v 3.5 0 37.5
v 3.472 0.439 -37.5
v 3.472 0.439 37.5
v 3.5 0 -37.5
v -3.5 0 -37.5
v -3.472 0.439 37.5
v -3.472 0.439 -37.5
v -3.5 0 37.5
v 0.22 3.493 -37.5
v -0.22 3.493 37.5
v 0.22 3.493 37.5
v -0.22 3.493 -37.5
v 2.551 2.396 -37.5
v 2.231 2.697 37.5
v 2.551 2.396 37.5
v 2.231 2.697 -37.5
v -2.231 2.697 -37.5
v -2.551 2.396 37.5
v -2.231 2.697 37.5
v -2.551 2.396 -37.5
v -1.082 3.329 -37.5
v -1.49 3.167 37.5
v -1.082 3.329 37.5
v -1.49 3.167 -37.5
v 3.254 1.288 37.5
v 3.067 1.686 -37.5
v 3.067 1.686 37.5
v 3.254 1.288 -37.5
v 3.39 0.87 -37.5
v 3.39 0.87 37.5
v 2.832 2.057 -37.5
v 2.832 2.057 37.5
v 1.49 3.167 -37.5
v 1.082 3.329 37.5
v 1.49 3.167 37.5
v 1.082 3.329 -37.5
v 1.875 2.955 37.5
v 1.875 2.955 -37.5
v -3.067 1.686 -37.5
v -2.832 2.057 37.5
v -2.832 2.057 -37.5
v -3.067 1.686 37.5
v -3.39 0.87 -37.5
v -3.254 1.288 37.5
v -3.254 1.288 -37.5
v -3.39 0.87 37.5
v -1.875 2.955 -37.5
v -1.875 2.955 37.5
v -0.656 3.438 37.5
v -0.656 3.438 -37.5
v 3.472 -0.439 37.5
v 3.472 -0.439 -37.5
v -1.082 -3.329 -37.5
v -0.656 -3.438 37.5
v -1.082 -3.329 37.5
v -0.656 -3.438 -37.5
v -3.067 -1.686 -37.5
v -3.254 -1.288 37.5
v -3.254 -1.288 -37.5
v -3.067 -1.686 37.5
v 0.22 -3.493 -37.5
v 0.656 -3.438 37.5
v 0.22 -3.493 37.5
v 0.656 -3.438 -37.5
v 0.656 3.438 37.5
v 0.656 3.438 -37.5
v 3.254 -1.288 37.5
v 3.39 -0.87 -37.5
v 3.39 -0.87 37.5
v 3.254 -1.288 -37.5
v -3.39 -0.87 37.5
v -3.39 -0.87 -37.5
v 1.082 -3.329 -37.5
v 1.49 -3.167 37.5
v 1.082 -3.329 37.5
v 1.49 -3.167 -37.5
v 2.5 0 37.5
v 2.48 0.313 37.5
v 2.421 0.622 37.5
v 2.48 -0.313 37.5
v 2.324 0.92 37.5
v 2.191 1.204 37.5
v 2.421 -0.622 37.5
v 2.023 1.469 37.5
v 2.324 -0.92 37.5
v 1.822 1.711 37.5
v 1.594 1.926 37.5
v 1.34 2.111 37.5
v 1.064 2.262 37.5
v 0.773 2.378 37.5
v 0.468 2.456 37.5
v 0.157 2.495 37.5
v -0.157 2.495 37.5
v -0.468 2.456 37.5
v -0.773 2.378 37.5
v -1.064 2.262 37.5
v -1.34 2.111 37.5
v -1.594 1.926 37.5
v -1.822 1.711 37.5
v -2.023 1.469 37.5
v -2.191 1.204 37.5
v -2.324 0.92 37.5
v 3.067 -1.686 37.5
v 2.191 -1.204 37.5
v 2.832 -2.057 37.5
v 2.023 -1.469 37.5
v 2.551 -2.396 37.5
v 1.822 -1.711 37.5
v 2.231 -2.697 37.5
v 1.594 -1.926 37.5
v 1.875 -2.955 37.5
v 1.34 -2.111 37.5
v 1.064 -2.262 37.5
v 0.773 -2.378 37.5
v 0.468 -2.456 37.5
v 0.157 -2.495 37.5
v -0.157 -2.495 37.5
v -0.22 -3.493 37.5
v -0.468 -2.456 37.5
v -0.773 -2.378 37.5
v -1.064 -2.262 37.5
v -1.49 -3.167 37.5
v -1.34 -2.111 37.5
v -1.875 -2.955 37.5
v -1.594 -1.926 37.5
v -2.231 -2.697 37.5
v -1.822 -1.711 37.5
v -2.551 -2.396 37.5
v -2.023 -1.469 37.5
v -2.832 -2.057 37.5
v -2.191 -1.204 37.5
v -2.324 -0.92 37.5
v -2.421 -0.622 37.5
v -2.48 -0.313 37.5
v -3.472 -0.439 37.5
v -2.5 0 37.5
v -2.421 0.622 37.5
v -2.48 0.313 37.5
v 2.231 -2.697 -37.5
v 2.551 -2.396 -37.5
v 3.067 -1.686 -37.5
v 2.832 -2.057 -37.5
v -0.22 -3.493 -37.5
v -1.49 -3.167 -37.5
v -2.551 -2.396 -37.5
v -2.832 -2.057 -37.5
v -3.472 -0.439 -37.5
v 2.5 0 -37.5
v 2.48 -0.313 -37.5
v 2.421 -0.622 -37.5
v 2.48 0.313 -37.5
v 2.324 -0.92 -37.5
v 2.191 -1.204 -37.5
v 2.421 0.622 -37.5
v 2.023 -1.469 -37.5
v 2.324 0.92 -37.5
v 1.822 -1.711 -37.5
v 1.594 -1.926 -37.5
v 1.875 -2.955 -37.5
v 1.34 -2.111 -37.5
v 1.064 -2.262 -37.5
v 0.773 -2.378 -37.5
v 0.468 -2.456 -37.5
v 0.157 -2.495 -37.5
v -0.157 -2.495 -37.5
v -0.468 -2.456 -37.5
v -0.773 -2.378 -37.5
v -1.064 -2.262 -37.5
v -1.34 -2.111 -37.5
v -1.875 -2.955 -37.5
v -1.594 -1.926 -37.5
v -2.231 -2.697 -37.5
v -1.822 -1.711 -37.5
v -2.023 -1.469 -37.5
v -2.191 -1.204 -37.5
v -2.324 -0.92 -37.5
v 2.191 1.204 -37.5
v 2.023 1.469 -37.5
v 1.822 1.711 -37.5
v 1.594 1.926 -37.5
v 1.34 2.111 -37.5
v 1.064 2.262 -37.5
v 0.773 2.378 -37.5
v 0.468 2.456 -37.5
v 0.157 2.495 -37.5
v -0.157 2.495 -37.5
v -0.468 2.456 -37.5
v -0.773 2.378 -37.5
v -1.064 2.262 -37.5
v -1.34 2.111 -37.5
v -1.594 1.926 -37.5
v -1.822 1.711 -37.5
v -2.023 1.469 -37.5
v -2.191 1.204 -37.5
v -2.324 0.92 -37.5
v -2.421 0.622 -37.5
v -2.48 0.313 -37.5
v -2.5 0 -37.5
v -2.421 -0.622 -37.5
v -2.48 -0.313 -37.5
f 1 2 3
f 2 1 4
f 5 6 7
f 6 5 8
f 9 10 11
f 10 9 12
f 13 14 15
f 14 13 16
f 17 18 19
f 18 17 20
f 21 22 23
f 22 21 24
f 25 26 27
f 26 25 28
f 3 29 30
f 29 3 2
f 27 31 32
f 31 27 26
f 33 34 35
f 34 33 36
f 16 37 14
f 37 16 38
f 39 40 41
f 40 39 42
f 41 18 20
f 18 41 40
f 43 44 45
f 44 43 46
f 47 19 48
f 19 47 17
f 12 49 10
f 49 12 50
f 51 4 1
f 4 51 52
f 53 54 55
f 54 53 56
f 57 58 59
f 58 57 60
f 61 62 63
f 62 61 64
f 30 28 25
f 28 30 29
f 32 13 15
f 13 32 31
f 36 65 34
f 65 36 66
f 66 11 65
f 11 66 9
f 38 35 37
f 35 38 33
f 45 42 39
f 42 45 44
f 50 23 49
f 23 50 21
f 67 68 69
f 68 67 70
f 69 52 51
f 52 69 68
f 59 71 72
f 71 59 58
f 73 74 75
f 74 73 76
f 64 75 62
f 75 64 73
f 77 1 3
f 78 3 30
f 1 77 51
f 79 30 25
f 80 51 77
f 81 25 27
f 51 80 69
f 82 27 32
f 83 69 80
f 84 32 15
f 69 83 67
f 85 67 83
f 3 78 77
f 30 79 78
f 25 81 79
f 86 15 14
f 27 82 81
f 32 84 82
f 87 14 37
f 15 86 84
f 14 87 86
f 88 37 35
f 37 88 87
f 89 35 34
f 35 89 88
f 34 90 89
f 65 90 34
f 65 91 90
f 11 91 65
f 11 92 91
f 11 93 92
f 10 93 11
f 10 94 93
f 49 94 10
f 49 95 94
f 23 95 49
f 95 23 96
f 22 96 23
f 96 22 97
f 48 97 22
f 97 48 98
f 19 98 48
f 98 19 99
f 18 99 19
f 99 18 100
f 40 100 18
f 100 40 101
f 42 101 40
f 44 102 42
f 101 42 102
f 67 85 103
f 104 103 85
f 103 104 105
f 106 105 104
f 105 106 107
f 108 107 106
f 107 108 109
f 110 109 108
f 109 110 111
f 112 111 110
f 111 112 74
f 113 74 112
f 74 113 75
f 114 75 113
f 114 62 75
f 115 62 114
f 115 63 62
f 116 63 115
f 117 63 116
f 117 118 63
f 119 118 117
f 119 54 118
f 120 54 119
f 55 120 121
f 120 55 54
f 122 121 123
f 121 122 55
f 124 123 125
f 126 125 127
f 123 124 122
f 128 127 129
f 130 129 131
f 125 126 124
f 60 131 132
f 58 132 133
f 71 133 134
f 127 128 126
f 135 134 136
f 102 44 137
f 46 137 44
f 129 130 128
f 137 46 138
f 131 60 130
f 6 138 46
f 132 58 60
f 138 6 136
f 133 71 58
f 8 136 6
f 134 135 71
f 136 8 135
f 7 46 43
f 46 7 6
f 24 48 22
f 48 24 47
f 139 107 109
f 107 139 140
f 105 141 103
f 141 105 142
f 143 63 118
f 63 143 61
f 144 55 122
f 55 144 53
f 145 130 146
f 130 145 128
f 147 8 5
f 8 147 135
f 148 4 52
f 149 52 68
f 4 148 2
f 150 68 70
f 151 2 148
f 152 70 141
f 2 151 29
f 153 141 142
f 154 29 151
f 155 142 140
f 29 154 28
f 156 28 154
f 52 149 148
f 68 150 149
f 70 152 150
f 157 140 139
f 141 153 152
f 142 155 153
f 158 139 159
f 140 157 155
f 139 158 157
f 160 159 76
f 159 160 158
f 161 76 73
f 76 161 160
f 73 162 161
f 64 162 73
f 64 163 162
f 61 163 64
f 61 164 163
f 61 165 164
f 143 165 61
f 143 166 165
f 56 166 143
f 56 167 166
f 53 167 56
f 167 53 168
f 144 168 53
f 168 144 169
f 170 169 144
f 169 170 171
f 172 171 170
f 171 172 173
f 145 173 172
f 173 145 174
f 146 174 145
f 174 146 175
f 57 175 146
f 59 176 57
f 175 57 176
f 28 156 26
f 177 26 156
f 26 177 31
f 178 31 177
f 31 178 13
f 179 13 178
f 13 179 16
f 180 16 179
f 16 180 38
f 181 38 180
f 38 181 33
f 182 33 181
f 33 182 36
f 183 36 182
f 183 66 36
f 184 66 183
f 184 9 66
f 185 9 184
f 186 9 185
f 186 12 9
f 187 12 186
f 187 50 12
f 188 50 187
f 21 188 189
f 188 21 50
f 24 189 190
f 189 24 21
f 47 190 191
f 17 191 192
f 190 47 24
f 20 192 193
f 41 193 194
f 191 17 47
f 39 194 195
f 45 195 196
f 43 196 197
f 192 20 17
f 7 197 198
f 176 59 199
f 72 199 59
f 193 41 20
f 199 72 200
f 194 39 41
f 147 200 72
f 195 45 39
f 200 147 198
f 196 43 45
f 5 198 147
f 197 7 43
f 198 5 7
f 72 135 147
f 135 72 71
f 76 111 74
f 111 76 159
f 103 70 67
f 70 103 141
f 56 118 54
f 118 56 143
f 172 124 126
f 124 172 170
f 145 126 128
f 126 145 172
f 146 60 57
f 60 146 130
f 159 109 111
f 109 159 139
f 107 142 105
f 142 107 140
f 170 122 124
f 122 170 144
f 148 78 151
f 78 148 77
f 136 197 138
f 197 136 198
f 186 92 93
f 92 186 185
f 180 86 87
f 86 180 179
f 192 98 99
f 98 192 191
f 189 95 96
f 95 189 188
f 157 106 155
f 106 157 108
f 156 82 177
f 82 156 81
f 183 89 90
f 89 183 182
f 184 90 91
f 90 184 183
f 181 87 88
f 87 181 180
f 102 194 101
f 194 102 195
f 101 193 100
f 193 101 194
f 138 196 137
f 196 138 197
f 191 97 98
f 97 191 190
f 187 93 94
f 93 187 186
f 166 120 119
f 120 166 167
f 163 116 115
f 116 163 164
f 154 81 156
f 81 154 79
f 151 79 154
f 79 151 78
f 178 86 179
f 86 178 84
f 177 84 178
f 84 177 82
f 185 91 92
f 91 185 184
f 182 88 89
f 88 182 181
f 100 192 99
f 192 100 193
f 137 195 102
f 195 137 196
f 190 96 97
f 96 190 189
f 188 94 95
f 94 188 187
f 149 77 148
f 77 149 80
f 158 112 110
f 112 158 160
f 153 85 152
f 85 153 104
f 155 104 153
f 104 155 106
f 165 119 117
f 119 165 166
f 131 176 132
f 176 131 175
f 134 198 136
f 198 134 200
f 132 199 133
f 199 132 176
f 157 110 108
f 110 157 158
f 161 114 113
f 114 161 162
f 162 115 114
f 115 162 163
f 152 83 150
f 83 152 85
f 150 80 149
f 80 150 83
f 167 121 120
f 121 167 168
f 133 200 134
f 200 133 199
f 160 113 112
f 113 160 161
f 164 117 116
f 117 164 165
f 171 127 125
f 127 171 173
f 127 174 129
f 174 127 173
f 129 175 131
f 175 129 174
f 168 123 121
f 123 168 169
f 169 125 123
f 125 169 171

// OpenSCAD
$fn = 50;


difference() {
	union() {
		translate(v = [0, 0, -37.5000000000]) {
			cylinder(h = 75, r = 3.5000000000);
		}
	}
	union() {
		translate(v = [0, 0, -100.0000000000]) {
			cylinder(h = 200, r = 2.5000000000);
		}
	}
}
